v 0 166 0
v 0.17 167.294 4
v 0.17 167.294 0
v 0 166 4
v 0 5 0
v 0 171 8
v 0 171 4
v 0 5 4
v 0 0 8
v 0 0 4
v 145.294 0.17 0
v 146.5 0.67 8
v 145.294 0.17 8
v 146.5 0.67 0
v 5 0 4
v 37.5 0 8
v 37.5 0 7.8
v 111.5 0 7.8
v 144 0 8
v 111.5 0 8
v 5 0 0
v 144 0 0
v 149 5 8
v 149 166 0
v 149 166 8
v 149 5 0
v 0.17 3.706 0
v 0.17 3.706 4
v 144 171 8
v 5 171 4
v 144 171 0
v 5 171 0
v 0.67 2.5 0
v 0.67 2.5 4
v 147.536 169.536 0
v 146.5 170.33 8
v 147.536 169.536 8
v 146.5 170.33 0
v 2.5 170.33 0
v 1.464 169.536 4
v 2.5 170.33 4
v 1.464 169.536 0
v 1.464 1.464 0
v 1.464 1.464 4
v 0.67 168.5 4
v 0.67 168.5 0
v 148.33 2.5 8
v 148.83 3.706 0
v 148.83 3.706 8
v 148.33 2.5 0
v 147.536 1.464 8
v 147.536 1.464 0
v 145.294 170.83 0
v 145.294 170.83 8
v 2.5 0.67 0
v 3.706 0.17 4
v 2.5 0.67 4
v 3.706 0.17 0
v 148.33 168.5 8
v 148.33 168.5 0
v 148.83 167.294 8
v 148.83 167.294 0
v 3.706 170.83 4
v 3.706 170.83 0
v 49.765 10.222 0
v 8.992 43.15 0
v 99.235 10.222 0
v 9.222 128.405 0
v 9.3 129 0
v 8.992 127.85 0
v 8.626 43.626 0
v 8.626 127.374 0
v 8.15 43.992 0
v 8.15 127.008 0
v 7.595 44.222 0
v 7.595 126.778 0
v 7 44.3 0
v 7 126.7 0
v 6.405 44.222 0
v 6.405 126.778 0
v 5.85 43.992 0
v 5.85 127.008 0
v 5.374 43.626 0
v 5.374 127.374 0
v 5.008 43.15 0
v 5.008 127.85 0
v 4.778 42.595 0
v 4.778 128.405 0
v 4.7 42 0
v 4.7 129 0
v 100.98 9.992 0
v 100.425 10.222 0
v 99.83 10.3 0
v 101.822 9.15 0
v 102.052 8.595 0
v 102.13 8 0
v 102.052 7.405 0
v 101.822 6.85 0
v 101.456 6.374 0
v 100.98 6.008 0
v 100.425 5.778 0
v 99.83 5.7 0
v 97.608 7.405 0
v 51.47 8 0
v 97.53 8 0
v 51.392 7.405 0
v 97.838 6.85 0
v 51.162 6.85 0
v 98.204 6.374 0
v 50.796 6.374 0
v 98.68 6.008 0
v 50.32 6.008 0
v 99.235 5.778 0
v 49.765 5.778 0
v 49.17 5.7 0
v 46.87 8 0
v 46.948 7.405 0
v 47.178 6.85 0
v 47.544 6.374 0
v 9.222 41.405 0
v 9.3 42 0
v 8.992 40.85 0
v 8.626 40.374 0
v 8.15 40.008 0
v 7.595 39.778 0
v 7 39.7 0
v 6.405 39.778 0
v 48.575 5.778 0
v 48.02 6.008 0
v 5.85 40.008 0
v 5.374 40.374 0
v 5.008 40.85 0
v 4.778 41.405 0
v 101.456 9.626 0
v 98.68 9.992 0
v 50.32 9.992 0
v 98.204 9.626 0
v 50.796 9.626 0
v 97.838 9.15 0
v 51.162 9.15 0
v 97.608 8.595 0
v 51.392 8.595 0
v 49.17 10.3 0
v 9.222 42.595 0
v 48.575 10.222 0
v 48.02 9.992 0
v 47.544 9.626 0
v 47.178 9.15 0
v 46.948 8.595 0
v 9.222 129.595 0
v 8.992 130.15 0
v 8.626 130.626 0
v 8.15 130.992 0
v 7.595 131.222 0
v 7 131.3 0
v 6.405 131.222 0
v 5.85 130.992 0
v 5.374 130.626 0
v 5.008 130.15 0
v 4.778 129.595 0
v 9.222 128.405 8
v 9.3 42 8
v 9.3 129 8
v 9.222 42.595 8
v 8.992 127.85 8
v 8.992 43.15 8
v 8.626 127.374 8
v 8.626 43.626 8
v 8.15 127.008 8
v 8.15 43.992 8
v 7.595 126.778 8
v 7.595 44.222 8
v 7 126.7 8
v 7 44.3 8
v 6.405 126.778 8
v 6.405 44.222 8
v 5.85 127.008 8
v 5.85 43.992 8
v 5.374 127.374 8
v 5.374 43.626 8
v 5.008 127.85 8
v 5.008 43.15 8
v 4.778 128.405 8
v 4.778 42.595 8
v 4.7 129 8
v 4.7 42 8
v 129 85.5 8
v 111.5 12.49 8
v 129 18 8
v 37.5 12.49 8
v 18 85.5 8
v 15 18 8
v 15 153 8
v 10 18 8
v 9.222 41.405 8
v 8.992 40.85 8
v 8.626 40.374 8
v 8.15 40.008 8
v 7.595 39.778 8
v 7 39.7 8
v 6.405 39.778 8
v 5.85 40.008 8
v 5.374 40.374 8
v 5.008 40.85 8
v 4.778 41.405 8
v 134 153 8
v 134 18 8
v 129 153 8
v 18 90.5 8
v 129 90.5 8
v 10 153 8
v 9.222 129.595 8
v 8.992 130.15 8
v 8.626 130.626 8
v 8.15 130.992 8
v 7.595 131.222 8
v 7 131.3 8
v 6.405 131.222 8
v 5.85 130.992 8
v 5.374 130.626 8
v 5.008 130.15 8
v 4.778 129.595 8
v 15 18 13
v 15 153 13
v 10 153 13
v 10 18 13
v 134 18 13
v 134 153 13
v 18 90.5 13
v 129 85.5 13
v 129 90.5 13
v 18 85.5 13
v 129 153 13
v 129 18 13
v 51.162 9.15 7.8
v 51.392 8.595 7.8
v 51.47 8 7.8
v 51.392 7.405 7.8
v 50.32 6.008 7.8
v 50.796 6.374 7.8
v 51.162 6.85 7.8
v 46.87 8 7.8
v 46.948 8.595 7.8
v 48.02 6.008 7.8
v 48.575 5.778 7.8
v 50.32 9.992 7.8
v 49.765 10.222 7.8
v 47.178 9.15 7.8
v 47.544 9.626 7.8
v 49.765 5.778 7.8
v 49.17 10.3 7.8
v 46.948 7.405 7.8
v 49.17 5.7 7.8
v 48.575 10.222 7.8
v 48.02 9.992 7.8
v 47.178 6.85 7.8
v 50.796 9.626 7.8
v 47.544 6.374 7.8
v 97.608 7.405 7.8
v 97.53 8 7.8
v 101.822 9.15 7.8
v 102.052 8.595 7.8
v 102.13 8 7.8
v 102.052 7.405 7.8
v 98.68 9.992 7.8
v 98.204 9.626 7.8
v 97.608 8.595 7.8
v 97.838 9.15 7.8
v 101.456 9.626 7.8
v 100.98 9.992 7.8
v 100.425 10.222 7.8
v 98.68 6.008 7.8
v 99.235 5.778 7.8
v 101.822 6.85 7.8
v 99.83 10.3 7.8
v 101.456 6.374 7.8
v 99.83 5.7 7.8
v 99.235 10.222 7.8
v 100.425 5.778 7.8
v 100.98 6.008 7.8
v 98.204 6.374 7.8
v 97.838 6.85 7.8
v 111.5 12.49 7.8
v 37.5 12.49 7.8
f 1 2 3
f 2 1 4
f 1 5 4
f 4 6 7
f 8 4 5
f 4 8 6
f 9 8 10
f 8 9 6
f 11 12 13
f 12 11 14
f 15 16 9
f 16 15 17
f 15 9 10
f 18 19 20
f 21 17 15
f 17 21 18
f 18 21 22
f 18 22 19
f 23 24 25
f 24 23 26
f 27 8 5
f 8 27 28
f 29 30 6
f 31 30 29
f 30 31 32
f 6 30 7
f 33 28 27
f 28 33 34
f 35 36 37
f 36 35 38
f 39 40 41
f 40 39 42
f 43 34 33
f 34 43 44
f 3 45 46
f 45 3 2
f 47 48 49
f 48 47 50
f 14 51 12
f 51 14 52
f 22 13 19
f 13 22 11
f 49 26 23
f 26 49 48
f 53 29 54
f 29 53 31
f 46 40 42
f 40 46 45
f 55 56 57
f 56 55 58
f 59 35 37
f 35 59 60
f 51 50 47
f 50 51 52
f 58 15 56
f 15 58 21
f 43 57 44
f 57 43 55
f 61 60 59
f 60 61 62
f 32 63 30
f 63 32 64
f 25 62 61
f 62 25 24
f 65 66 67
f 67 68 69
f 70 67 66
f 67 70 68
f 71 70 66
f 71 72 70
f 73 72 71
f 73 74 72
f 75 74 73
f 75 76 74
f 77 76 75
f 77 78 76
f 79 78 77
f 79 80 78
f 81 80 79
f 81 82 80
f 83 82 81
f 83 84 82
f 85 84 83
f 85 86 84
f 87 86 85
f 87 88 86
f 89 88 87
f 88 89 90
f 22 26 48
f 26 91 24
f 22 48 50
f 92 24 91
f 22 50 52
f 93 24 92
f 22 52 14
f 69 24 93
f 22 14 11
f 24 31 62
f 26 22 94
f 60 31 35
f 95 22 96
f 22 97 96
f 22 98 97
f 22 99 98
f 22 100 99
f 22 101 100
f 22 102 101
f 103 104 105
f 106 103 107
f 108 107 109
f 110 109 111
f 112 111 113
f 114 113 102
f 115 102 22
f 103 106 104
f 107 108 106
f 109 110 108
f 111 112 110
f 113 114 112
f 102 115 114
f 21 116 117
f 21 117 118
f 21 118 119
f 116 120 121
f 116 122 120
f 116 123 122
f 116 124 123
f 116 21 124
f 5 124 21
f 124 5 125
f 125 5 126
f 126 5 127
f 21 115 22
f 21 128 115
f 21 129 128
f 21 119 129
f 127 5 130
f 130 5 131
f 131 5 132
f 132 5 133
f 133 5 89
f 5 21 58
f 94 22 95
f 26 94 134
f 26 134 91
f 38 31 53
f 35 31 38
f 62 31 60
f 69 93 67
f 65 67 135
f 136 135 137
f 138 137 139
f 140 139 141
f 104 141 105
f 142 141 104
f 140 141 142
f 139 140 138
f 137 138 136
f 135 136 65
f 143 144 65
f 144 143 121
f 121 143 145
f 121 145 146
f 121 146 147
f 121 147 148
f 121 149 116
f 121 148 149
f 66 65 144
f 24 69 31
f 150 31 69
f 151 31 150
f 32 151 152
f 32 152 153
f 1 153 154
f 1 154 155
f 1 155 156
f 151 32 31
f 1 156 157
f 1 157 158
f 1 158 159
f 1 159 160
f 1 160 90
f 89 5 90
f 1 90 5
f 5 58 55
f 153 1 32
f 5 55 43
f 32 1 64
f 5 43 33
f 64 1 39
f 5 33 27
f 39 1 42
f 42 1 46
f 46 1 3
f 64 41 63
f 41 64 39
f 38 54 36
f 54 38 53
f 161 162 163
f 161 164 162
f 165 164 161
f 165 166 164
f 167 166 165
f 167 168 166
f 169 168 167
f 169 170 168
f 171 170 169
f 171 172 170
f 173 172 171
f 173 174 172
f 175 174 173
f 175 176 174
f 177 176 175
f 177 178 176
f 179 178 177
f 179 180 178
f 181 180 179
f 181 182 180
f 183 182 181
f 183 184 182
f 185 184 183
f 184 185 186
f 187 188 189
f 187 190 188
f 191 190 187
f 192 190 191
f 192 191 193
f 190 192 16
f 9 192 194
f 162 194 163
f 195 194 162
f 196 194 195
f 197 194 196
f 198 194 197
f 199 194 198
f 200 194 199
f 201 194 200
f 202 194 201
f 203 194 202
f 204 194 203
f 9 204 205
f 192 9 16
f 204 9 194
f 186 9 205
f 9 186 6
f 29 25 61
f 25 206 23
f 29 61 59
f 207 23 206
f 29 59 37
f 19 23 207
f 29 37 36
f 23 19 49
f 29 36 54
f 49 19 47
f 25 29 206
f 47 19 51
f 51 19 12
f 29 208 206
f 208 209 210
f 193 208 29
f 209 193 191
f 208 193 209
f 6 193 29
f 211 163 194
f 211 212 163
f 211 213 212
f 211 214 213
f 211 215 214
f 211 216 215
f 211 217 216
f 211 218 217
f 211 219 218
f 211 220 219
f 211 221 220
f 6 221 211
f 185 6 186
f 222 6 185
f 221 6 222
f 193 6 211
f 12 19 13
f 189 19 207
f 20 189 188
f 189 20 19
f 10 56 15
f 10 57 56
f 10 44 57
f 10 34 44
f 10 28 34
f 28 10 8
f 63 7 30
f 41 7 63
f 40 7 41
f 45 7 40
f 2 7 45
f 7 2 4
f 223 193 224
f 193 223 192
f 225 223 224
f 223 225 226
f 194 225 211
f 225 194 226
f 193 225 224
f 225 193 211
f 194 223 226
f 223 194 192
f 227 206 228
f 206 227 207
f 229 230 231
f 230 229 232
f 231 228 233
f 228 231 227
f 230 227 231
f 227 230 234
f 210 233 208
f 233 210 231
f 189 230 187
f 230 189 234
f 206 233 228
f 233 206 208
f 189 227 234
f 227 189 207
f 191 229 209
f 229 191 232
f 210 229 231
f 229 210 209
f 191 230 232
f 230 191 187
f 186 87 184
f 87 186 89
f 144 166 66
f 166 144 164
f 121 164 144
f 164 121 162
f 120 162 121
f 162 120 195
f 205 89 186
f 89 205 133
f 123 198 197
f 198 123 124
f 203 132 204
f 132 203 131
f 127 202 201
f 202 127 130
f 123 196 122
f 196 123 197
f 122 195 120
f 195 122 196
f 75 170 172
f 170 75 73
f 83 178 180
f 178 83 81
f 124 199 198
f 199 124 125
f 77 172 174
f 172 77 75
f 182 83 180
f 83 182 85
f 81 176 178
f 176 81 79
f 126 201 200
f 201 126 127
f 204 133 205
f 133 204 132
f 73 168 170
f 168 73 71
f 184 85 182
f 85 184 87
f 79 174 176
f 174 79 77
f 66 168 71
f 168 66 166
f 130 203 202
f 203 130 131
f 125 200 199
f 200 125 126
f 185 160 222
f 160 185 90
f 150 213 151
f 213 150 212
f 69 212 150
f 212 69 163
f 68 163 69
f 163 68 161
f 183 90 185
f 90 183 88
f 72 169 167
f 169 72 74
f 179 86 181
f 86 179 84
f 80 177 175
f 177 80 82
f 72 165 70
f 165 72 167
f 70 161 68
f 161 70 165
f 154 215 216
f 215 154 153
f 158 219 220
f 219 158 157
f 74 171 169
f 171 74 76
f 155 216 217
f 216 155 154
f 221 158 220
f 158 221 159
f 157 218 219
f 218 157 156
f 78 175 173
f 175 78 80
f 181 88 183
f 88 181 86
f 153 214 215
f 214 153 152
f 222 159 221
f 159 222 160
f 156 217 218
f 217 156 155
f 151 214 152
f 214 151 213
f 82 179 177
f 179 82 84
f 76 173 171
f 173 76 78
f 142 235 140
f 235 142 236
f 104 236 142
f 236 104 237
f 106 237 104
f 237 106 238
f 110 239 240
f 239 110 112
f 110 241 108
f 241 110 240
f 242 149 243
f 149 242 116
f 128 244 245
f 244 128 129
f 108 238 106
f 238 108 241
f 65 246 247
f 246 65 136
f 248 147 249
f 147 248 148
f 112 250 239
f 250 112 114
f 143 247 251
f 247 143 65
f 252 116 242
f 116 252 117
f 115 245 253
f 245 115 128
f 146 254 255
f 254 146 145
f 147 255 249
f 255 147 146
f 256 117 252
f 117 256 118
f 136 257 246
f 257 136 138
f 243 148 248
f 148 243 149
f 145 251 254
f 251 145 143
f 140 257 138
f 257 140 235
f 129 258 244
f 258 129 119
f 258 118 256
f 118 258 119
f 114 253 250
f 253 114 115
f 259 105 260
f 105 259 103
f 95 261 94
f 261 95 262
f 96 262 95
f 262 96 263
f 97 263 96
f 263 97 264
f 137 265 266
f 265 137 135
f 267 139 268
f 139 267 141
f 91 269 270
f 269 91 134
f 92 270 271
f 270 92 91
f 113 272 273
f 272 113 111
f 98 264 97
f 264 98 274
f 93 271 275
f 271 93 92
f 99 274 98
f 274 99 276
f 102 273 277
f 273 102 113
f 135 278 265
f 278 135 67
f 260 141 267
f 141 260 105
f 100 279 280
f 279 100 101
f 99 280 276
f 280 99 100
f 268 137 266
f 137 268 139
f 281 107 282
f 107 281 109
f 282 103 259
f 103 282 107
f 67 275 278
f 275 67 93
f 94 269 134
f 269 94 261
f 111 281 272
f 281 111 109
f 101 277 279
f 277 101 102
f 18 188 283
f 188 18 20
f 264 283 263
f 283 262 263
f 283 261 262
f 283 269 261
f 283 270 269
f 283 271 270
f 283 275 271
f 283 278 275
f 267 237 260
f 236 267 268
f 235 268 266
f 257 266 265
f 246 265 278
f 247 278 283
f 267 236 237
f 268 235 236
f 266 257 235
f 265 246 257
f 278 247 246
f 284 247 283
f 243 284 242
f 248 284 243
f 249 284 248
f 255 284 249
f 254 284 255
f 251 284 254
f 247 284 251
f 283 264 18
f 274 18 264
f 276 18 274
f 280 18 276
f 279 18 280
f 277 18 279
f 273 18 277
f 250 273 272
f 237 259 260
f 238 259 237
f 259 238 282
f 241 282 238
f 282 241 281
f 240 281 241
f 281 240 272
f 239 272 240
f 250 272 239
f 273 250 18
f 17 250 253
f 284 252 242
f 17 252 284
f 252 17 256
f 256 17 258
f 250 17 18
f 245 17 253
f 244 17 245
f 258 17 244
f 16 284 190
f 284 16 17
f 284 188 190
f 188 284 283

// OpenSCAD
// file: 00_parameters.scad
// TenderCells DoorCell V1 shared parameters
// Units: millimeters

overall_w = 438;
overall_h = 368;
frame_depth = 56;

clear_w = 242;
clear_h = 312;

rail_thick = 32;
jamb_w = 48;
motor_jamb_w = 78;

// Printability targets
target_bed_xy = 220;
comfortable_part_max = 180;

// Modular frame split dimensions
top_seg_len = overall_w / 3;
bottom_seg_len = overall_w / 3;
left_jamb_seg_h = overall_h / 2;
right_lower_h = 118;
right_motor_h = 156;
right_upper_h = overall_h - right_lower_h - right_motor_h;

// Low-cost electronics envelope used by DoorCell V1.4.
// These dimensions are based on common generic modules, not a custom PCB.
esp32_board = [58, 31, 8];
drv8871_board = [31, 26, 7];
current_sensor_board = [26, 22, 7];
lm2596_board = [44, 22, 14];
inline_fuse_body = [45, 15, 14];
cn3065_board = [44, 24, 8];
electronics_clearance = 1.5;
controller_wall = 3;
controller_box_w = 170;
controller_box_h = 115;
controller_box_d = 46;
controller_lid_insert_offset = 11;
controller_m12_gland_d = 12.8;
controller_m10_gland_d = 10.6;
controller_m8_gland_d = 8.4;
controller_button_d = 16.2;

// Brass heat-set/push-in insert features.
insert_post_d = 8.0;
insert_post_h = 8.0;
insert_pilot_d = 4.6;
insert_pilot_depth = 6.5;
hold_down_screw_clearance = 3.4;

// Motor envelope for common 25GA/JGA25-370 gearmotors with optional encoder.
motor_body_d = 25.0;
motor_body_clearance_d = 27.2;
motor_body_len = 65;
motor_encoder_clearance = 16;
motor_mount_plate = [72, 92, 12];
motor_mount_cradle = [54, 74, 28];

// Optional solar add-on.
solar_panel_w = 145;
solar_panel_h = 145;
solar_panel_t = 4.0;
solar_panel_frame_border = 10;
solar_panel_frame_w = solar_panel_w + 2*solar_panel_frame_border;
solar_panel_frame_h = solar_panel_h + 2*solar_panel_frame_border;
solar_panel_back_depth = 14;
solar_panel_lip_overlap = 3;
solar_ball_d = 22;
solar_ball_socket_clearance = 0.45;
solar_mount_m5 = 5.4;

// Tongue-and-groove frame joints
// Fit target: common FDM printers with PETG/ASA.
// Clearance is per side, so sockets add 2x this value.
tongue_len = 18;
tongue_w = 22;
tongue_z = 10;
tongue_clearance_side = 0.25;
tongue_socket_depth_extra = 0.60;

door_w = 270;
door_h = 326;
door_t = 8;

track_gap = 11;
track_depth = 12;

// Rack-and-pinion drive
// Metric module gear math:
// circular_pitch = PI * module
// pitch_diameter = module * tooth_count
// outside_diameter = module * (tooth_count + 2)
// root_diameter = module * (tooth_count - 2.5)
gear_module = 2.0;
pressure_angle = 20;
gear_backlash = 0.20; // mm removed from rack tooth thickness at pitch line

pinion_teeth = 16;
pinion_pitch_d = gear_module * pinion_teeth;
pinion_pitch_radius = pinion_pitch_d / 2;
pinion_outer_d = gear_module * (pinion_teeth + 2);
pinion_outer_radius = pinion_outer_d / 2;
pinion_root_d = gear_module * (pinion_teeth - 2.5);
pinion_root_radius = pinion_root_d / 2;
pinion_thick = 12;
shaft_d = 6.2;

rack_tooth_count = 15;
rack_circular_pitch = 3.141592653589793 * gear_module;
rack_len = rack_circular_pitch * rack_tooth_count;
rack_w = 18;
rack_t = 6;
rack_addendum = gear_module;
rack_dedendum = 1.25 * gear_module;
rack_tooth_h = rack_addendum + rack_dedendum;
rack_pitch_line_z = rack_dedendum;
rack_tooth_pitch_thickness = rack_circular_pitch / 2 - gear_backlash;
rack_tooth_top_w = rack_tooth_pitch_thickness - 2 * rack_addendum * tan(pressure_angle);
rack_tooth_root_w = rack_tooth_pitch_thickness + 2 * rack_dedendum * tan(pressure_angle);

screw_m3 = 3.4;
screw_m4 = 4.5;
insert_m3 = 4.6;

eps = 0.01;

module rounded_box(size=[10,10,10], r=2) {
  hull() {
    translate([r,r,0]) cylinder(h=size[2], r=r, $fn=24);
    translate([size[0]-r,r,0]) cylinder(h=size[2], r=r, $fn=24);
    translate([r,size[1]-r,0]) cylinder(h=size[2], r=r, $fn=24);
    translate([size[0]-r,size[1]-r,0]) cylinder(h=size[2], r=r, $fn=24);
  }
}

module m3_clearance_hole(h=20) {
  cylinder(h=h, d=screw_m3, $fn=24);
}

module m4_clearance_hole(h=20) {
  cylinder(h=h, d=screw_m4, $fn=24);
}

module heat_insert_hole(h=6) {
  cylinder(h=h, d=insert_m3, $fn=24);
}

module heat_insert_post(h=insert_post_h, d=insert_post_d) {
  difference() {
    cylinder(h=h, d=d, $fn=32);
    translate([0,0,h-insert_pilot_depth+eps])
      cylinder(h=insert_pilot_depth+eps, d=insert_pilot_d, $fn=24);
  }
}

module m3_hold_down_slot(length=10, h=4) {
  hull() {
    translate([-length/2,0,0]) cylinder(h=h, d=hold_down_screw_clearance, $fn=20);
    translate([ length/2,0,0]) cylinder(h=h, d=hold_down_screw_clearance, $fn=20);
  }
}

module rail_channel(length=100) {
  cube([length, track_gap, track_depth]);
}

module frame_tongue_x() {
  rounded_box([tongue_len, tongue_w, tongue_z], r=1.5);
}

module frame_socket_x() {
  cube([
    tongue_len + tongue_socket_depth_extra,
    tongue_w + 2*tongue_clearance_side,
    tongue_z + 2*tongue_clearance_side
  ]);
}

module frame_tongue_y() {
  rounded_box([tongue_w, tongue_len, tongue_z], r=1.5);
}

module frame_socket_y() {
  cube([
    tongue_w + 2*tongue_clearance_side,
    tongue_len + tongue_socket_depth_extra,
    tongue_z + 2*tongue_clearance_side
  ]);
}

module rack_teeth(len=rack_len) {
  teeth = floor(len / rack_circular_pitch);
  for (i=[0:teeth-1]) {
    center = i*rack_circular_pitch + rack_circular_pitch/2;
    translate([0, 0, rack_t-0.20])
      linear_extrude(height=rack_w)
        polygon(points=[
          [center - rack_tooth_root_w/2, 0],
          [center + rack_tooth_root_w/2, 0],
          [center + rack_tooth_top_w/2, rack_tooth_h],
          [center - rack_tooth_top_w/2, rack_tooth_h]
        ]);
  }
}

function polar_point(r, a) = [r * cos(a), r * sin(a)];
// file: sliding_door_modular_common.scad
include <00_parameters.scad>

door_part_w = door_w/2 + 14;
door_part_h = door_h/2 + 8;
door_mid_overlap = 14;
door_v_overlap = 12;

module door_tongue_y(width=72) {
  rounded_box([width, door_v_overlap, 3], r=1.5);
}

module door_socket_y(width=74) {
  cube([width, door_v_overlap + 2*tongue_clearance_side, 3.8]);
}

module sliding_door_quadrant(side="left", row="lower") {
  difference() {
    union() {
      rounded_box([door_part_w, door_part_h, door_t], r=5);

      // Vertical center lap between left and right panels.
      if (side == "left") {
        translate([door_part_w-door_mid_overlap, 0, 0])
          cube([door_mid_overlap, door_part_h, door_t/2]);
      } else {
        translate([0, 0, door_t/2])
          cube([door_mid_overlap, door_part_h, door_t/2]);
      }

      // Horizontal lap between lower and upper panels.
      if (row == "lower") {
        translate([door_part_w/2-36, door_part_h-eps, door_t])
          door_tongue_y(width=72);
      }

      // Stiffening ribs.
      translate([10, 18, door_t])
        cube([5, door_part_h-36, 5]);
      translate([door_part_w-20, 18, door_t])
        cube([5, door_part_h-36, 5]);
      translate([18, door_part_h/2, door_t])
        cube([door_part_w-36, 5, 5]);
    }

    if (row == "upper") {
      translate([door_part_w/2-37, -eps, door_t-0.2])
        door_socket_y(width=74);
    }

    // Center lap fastener holes.
    if (side == "left") {
      for (y=[42, door_part_h-42]) {
        translate([door_part_w-door_mid_overlap/2, y, -eps])
          m3_clearance_hole(h=door_t+10);
      }
    } else {
      for (y=[42, door_part_h-42]) {
        translate([door_mid_overlap/2, y, -eps])
          heat_insert_hole(h=door_t+1);
      }
    }

    // Horizontal split fastener holes.
    if (row == "lower") {
      for (x=[door_part_w*0.33, door_part_w*0.67]) {
        translate([x, door_part_h-8, -eps])
          m3_clearance_hole(h=door_t+10);
      }
    } else {
      for (x=[door_part_w*0.33, door_part_w*0.67]) {
        translate([x, 8, -eps])
          heat_insert_hole(h=door_t+1);
      }
    }

    // Rack mounting holes only on lower row.
    if (row == "lower") {
      for (x=[35, 85, 125]) {
        translate([x, 24, -eps]) heat_insert_hole(h=door_t+1);
      }
    }
  }
}
// main file
include <sliding_door_modular_common.scad>

sliding_door_quadrant(side="right", row="upper");
